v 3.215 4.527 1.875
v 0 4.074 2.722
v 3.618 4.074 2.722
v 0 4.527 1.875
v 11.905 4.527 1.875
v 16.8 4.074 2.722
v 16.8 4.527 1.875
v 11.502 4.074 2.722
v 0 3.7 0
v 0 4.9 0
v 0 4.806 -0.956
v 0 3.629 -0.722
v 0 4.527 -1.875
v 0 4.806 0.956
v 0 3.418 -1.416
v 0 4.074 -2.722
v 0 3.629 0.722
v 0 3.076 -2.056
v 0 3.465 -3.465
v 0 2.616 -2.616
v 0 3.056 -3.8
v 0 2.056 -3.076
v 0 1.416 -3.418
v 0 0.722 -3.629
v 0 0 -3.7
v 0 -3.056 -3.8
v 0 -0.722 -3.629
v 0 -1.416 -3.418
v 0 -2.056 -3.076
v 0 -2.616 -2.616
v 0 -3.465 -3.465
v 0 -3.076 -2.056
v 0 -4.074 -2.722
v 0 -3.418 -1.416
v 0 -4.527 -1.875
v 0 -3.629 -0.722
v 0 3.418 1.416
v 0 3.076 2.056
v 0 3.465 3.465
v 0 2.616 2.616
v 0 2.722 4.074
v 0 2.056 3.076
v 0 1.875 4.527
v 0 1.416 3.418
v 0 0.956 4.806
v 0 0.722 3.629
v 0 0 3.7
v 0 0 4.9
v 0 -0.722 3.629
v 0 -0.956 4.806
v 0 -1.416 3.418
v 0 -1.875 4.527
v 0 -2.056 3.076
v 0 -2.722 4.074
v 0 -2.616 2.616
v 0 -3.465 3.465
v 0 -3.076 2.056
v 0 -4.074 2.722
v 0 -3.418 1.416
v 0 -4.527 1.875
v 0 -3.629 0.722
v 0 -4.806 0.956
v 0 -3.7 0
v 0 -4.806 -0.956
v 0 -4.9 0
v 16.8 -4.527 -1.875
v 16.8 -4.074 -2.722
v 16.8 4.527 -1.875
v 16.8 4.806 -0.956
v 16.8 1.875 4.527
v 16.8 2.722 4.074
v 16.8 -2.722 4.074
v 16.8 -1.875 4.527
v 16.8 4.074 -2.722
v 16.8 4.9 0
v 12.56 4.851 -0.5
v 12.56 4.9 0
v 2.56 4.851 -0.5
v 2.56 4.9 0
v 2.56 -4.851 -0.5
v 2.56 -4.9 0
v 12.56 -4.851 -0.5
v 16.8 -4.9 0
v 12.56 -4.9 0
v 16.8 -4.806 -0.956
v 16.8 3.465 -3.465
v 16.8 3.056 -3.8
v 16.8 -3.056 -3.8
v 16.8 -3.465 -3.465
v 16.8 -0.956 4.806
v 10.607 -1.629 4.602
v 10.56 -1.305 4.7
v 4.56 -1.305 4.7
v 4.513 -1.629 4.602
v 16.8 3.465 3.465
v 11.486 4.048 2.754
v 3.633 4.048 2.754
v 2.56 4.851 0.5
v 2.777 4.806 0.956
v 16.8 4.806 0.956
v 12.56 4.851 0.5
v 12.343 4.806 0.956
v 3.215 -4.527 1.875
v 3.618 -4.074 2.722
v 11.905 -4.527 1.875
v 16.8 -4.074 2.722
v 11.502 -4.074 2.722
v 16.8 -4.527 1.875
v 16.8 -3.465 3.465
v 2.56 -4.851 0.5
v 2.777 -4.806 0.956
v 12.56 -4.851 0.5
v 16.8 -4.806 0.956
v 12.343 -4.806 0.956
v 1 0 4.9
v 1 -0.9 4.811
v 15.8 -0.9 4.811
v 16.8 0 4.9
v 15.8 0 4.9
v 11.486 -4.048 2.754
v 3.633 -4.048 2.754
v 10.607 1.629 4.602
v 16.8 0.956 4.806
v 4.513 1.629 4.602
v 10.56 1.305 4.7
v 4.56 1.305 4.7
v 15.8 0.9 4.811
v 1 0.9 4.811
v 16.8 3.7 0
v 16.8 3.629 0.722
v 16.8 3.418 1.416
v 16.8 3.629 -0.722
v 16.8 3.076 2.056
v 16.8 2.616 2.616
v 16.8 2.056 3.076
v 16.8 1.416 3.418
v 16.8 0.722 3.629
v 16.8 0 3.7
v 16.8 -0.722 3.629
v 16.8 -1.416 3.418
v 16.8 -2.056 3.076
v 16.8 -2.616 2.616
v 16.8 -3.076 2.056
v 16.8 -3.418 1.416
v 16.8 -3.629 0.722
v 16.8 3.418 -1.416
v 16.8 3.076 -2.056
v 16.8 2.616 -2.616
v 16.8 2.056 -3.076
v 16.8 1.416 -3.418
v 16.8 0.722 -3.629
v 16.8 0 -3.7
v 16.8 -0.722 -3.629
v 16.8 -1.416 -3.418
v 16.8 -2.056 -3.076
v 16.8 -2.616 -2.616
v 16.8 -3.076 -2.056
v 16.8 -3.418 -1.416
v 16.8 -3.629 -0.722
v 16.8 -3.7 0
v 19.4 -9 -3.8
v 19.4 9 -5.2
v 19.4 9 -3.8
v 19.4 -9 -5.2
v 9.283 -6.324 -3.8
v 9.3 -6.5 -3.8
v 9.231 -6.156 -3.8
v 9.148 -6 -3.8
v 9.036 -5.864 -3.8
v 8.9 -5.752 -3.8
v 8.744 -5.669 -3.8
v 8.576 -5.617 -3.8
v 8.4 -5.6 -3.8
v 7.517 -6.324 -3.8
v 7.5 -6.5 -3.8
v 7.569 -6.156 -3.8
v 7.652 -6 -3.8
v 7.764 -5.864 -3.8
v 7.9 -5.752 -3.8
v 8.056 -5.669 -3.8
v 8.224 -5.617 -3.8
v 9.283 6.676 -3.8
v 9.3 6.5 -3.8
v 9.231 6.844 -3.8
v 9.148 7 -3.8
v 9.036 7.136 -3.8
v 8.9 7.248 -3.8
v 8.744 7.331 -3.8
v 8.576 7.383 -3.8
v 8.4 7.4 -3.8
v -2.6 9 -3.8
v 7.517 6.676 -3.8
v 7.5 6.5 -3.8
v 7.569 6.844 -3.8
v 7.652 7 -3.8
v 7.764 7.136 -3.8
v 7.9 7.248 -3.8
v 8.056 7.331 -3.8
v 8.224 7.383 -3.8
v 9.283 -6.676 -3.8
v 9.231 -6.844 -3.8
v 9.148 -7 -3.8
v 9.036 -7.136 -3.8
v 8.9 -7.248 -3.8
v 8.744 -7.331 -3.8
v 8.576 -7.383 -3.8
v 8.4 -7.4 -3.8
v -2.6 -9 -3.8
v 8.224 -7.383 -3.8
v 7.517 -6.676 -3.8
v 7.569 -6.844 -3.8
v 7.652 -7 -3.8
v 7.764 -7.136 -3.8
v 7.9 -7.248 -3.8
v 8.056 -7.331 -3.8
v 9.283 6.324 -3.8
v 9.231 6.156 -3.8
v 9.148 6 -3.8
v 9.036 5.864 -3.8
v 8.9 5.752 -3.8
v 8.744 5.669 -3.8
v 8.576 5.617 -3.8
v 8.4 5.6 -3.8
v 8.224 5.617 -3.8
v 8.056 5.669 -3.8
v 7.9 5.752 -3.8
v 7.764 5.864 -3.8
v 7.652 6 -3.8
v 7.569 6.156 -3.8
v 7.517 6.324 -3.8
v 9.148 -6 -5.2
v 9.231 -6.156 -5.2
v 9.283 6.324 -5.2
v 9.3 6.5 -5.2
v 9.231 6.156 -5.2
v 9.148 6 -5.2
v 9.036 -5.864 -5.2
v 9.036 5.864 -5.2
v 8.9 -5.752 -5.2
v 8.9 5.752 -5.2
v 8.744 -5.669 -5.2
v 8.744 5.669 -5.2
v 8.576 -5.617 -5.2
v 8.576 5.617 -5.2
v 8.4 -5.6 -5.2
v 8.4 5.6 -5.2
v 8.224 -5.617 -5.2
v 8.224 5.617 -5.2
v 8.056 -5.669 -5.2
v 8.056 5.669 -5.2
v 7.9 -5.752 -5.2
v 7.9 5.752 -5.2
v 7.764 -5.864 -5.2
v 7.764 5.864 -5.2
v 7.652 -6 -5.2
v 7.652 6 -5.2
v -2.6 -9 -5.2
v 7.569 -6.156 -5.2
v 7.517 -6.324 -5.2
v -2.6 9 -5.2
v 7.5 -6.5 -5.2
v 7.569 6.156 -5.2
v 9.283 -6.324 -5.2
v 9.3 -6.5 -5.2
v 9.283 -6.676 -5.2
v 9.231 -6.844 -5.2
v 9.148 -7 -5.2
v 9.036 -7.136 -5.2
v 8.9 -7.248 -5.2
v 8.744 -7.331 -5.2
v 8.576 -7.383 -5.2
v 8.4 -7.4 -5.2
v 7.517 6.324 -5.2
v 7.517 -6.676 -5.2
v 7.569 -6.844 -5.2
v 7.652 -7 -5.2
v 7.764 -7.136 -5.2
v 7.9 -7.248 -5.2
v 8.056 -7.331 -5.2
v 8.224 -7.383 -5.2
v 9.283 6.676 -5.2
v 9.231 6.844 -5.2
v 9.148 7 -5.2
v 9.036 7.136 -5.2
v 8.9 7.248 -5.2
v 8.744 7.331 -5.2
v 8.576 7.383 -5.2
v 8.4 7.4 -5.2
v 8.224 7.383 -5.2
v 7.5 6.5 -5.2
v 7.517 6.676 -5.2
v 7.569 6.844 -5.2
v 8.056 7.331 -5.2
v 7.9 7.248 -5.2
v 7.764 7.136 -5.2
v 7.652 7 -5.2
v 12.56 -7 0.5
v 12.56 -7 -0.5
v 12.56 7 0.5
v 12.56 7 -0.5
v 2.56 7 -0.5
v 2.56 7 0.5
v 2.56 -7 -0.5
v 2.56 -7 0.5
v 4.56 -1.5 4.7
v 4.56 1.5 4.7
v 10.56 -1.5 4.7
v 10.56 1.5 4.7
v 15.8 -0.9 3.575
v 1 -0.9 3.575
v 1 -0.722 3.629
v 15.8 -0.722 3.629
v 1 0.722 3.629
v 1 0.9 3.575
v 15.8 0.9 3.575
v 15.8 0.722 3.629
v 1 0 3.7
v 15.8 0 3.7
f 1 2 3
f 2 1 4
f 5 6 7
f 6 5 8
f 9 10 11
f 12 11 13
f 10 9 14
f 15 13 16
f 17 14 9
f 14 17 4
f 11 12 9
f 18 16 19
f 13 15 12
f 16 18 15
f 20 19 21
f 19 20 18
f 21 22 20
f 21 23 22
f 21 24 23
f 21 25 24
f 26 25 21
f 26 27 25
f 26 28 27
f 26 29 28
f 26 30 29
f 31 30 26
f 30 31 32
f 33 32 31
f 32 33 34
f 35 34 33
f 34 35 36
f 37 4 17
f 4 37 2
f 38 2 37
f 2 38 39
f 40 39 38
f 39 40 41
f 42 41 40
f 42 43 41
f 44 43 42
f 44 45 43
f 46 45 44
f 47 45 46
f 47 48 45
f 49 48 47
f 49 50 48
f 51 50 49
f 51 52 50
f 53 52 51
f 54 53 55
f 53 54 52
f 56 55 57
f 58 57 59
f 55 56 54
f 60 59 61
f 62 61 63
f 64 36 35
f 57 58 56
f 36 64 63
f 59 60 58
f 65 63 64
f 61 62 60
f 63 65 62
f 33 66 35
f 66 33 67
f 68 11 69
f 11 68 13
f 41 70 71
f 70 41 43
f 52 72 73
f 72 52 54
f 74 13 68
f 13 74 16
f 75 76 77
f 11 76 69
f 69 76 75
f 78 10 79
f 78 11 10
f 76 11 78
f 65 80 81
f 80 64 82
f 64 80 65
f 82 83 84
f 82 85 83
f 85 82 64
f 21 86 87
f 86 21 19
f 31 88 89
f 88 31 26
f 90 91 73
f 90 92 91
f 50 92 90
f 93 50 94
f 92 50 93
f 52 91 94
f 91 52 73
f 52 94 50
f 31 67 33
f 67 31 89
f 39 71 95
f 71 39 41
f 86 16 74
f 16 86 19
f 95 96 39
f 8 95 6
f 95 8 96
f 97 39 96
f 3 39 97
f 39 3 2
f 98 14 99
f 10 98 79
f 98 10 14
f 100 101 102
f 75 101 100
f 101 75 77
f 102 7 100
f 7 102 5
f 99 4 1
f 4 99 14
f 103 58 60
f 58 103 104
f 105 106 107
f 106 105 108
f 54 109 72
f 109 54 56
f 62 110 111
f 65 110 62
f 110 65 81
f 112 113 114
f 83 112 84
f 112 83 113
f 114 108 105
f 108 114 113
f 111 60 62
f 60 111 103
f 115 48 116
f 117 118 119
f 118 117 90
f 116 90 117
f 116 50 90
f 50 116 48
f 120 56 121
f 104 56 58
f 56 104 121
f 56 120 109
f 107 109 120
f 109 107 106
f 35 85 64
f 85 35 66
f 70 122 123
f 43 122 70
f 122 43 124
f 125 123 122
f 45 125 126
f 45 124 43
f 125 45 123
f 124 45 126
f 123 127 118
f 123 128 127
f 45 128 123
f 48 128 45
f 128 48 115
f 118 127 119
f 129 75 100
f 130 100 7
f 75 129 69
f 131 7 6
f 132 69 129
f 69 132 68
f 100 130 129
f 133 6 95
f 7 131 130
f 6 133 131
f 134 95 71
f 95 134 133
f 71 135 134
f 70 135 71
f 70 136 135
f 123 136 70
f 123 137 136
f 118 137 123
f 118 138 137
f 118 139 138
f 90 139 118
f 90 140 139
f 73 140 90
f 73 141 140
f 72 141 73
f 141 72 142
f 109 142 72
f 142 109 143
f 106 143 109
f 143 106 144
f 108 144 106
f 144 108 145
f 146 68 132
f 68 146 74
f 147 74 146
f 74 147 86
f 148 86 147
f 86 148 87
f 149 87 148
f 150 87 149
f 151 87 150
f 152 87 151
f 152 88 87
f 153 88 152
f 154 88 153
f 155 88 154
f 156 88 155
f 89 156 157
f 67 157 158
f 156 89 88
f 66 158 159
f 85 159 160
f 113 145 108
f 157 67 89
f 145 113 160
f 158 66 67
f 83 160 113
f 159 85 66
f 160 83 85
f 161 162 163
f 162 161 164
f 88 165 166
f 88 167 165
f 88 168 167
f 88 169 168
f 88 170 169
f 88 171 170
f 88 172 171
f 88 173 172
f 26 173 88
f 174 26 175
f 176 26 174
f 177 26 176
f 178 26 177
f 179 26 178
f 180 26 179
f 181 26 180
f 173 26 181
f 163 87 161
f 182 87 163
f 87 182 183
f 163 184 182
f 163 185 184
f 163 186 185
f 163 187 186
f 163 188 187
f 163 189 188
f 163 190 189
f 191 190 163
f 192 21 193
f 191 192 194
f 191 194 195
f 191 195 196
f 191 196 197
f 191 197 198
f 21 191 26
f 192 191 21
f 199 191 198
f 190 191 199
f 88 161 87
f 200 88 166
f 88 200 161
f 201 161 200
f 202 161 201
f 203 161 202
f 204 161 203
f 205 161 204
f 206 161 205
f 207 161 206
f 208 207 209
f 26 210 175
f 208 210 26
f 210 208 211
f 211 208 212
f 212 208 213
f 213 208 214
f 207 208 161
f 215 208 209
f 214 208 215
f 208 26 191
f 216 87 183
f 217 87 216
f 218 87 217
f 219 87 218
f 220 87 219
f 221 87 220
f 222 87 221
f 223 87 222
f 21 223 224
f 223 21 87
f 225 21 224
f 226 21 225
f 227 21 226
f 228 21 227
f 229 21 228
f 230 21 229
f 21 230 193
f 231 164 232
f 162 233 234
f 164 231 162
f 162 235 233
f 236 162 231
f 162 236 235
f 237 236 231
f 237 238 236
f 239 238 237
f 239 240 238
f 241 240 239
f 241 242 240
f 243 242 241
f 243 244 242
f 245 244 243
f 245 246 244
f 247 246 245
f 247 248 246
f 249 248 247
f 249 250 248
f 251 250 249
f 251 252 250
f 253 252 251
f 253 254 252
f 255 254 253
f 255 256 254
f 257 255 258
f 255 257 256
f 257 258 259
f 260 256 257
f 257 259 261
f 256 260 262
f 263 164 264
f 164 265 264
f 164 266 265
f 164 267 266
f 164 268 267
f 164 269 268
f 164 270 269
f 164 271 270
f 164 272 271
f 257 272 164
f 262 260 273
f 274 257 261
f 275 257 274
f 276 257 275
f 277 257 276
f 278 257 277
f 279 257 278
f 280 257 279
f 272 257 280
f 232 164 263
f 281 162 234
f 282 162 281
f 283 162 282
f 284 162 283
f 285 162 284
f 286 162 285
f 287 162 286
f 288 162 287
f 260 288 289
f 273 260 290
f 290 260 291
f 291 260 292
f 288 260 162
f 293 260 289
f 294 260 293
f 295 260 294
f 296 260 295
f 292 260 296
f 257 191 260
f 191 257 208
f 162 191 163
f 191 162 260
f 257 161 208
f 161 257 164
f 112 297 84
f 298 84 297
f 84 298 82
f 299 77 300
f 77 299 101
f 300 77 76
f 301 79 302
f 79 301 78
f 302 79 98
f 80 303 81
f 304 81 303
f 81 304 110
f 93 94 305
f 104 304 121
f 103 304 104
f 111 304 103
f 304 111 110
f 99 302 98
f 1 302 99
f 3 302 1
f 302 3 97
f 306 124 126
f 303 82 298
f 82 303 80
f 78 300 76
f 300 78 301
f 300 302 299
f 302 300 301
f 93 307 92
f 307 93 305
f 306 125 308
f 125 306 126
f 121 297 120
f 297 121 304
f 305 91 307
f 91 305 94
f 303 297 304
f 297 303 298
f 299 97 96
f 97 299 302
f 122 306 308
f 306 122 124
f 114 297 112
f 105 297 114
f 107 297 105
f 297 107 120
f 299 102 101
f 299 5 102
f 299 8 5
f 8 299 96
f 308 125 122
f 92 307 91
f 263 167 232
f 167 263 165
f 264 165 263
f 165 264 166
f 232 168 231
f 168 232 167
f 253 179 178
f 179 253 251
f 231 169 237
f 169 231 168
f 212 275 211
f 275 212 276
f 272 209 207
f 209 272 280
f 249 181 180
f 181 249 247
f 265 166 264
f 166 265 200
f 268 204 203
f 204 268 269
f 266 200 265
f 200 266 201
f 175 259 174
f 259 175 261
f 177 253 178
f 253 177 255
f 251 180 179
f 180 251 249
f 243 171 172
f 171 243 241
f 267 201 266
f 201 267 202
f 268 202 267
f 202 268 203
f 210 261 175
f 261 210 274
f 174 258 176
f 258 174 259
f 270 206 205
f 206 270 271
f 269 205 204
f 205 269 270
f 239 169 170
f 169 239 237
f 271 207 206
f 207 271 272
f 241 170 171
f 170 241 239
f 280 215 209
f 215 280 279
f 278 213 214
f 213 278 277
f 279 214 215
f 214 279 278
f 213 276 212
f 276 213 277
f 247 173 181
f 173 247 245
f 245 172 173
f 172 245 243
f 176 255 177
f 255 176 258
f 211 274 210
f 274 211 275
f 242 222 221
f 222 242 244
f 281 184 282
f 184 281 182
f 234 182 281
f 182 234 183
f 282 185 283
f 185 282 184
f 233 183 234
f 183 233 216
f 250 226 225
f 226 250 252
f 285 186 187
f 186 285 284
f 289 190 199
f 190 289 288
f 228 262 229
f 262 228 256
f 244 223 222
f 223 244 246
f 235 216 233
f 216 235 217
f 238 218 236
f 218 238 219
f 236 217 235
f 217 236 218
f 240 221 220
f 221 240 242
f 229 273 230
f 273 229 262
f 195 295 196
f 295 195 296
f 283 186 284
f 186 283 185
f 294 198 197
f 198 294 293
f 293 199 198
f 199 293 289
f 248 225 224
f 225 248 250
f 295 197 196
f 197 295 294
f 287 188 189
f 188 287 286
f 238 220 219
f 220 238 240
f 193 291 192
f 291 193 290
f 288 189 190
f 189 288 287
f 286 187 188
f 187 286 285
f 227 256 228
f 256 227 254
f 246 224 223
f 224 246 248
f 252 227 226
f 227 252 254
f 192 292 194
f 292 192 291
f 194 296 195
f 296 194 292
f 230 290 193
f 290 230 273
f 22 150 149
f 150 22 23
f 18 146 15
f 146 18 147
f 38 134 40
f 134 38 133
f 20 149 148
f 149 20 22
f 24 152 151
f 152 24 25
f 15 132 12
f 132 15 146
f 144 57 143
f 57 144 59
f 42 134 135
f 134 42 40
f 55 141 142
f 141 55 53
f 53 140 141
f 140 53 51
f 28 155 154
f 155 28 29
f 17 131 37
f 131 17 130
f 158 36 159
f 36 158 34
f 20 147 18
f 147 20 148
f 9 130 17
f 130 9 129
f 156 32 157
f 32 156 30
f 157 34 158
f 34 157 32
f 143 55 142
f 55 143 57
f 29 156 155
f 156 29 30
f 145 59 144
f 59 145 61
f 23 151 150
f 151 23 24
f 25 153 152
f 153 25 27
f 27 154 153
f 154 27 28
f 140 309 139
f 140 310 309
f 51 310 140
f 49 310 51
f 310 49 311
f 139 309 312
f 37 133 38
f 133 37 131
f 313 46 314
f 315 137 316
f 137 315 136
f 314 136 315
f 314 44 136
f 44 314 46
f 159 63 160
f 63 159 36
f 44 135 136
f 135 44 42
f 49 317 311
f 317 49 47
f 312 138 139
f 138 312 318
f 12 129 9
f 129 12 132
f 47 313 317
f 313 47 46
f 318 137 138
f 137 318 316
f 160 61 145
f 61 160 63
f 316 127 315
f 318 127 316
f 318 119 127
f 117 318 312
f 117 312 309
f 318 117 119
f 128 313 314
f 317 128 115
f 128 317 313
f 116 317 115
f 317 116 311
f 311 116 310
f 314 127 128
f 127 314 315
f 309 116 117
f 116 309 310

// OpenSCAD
// =============================================================================
// Project Eagle-Eye v0 Micro: Standalone Snap-in 716 / 8520 Coreless Motor Nacelle
// Modular bracket with wing clip flange, cooling vents, and thrust angle alignment
// =============================================================================

$fn = 32;

motor_dia   = 7.4;  // 716 motor (7.0mm) + tolerance (or set 8.8 for 8520)
motor_len   = 16.8;
wall_thick  = 1.2;
flange_w    = 18.0;
flange_len  = 22.0;

module modular_motor_nacelle() {
    difference() {
        union() {
            // Cylindrical housing
            rotate([0, 90, 0])
                cylinder(r = (motor_dia / 2) + wall_thick, h = motor_len);

            // Wing mounting base flange
            translate([motor_len / 2, 0, -(motor_dia / 2) - 0.8])
                cube([flange_len, flange_w, 1.4], center = true);

            // Reinforcing aerodynamic gussets
            translate([motor_len * 0.45, 0, 0])
                hull() {
                    cube([10, flange_w - 4, 1.0], center = true);
                    translate([0, 0, (motor_dia / 2) + 0.5])
                        cube([6, 3, 1], center = true);
                }
        }

        // Motor bore hole
        translate([-1, 0, 0])
            rotate([0, 90, 0])
                cylinder(r = motor_dia / 2, h = motor_len + 3);

        // Rear shaft & pinion gear clearance
        translate([motor_len - 2, 0, 0])
            rotate([0, 90, 0])
                cylinder(r = 2.8, h = 5);

        // Top snap-fit expansion slot (enables snap-in friction fit without glue)
        translate([motor_len / 2, 0, (motor_dia / 2) + 0.5])
            cube([motor_len - 2, 1.8, 3.0], center = true);

        // Wing screw / pin alignment holes
        for (side = [-1, 1]) {
            translate([motor_len / 2, side * (flange_w / 2 - 2.5), -(motor_dia / 2) - 0.8])
                cylinder(r = 0.9, h = 4, center = true);
        }
    }
}

modular_motor_nacelle();
